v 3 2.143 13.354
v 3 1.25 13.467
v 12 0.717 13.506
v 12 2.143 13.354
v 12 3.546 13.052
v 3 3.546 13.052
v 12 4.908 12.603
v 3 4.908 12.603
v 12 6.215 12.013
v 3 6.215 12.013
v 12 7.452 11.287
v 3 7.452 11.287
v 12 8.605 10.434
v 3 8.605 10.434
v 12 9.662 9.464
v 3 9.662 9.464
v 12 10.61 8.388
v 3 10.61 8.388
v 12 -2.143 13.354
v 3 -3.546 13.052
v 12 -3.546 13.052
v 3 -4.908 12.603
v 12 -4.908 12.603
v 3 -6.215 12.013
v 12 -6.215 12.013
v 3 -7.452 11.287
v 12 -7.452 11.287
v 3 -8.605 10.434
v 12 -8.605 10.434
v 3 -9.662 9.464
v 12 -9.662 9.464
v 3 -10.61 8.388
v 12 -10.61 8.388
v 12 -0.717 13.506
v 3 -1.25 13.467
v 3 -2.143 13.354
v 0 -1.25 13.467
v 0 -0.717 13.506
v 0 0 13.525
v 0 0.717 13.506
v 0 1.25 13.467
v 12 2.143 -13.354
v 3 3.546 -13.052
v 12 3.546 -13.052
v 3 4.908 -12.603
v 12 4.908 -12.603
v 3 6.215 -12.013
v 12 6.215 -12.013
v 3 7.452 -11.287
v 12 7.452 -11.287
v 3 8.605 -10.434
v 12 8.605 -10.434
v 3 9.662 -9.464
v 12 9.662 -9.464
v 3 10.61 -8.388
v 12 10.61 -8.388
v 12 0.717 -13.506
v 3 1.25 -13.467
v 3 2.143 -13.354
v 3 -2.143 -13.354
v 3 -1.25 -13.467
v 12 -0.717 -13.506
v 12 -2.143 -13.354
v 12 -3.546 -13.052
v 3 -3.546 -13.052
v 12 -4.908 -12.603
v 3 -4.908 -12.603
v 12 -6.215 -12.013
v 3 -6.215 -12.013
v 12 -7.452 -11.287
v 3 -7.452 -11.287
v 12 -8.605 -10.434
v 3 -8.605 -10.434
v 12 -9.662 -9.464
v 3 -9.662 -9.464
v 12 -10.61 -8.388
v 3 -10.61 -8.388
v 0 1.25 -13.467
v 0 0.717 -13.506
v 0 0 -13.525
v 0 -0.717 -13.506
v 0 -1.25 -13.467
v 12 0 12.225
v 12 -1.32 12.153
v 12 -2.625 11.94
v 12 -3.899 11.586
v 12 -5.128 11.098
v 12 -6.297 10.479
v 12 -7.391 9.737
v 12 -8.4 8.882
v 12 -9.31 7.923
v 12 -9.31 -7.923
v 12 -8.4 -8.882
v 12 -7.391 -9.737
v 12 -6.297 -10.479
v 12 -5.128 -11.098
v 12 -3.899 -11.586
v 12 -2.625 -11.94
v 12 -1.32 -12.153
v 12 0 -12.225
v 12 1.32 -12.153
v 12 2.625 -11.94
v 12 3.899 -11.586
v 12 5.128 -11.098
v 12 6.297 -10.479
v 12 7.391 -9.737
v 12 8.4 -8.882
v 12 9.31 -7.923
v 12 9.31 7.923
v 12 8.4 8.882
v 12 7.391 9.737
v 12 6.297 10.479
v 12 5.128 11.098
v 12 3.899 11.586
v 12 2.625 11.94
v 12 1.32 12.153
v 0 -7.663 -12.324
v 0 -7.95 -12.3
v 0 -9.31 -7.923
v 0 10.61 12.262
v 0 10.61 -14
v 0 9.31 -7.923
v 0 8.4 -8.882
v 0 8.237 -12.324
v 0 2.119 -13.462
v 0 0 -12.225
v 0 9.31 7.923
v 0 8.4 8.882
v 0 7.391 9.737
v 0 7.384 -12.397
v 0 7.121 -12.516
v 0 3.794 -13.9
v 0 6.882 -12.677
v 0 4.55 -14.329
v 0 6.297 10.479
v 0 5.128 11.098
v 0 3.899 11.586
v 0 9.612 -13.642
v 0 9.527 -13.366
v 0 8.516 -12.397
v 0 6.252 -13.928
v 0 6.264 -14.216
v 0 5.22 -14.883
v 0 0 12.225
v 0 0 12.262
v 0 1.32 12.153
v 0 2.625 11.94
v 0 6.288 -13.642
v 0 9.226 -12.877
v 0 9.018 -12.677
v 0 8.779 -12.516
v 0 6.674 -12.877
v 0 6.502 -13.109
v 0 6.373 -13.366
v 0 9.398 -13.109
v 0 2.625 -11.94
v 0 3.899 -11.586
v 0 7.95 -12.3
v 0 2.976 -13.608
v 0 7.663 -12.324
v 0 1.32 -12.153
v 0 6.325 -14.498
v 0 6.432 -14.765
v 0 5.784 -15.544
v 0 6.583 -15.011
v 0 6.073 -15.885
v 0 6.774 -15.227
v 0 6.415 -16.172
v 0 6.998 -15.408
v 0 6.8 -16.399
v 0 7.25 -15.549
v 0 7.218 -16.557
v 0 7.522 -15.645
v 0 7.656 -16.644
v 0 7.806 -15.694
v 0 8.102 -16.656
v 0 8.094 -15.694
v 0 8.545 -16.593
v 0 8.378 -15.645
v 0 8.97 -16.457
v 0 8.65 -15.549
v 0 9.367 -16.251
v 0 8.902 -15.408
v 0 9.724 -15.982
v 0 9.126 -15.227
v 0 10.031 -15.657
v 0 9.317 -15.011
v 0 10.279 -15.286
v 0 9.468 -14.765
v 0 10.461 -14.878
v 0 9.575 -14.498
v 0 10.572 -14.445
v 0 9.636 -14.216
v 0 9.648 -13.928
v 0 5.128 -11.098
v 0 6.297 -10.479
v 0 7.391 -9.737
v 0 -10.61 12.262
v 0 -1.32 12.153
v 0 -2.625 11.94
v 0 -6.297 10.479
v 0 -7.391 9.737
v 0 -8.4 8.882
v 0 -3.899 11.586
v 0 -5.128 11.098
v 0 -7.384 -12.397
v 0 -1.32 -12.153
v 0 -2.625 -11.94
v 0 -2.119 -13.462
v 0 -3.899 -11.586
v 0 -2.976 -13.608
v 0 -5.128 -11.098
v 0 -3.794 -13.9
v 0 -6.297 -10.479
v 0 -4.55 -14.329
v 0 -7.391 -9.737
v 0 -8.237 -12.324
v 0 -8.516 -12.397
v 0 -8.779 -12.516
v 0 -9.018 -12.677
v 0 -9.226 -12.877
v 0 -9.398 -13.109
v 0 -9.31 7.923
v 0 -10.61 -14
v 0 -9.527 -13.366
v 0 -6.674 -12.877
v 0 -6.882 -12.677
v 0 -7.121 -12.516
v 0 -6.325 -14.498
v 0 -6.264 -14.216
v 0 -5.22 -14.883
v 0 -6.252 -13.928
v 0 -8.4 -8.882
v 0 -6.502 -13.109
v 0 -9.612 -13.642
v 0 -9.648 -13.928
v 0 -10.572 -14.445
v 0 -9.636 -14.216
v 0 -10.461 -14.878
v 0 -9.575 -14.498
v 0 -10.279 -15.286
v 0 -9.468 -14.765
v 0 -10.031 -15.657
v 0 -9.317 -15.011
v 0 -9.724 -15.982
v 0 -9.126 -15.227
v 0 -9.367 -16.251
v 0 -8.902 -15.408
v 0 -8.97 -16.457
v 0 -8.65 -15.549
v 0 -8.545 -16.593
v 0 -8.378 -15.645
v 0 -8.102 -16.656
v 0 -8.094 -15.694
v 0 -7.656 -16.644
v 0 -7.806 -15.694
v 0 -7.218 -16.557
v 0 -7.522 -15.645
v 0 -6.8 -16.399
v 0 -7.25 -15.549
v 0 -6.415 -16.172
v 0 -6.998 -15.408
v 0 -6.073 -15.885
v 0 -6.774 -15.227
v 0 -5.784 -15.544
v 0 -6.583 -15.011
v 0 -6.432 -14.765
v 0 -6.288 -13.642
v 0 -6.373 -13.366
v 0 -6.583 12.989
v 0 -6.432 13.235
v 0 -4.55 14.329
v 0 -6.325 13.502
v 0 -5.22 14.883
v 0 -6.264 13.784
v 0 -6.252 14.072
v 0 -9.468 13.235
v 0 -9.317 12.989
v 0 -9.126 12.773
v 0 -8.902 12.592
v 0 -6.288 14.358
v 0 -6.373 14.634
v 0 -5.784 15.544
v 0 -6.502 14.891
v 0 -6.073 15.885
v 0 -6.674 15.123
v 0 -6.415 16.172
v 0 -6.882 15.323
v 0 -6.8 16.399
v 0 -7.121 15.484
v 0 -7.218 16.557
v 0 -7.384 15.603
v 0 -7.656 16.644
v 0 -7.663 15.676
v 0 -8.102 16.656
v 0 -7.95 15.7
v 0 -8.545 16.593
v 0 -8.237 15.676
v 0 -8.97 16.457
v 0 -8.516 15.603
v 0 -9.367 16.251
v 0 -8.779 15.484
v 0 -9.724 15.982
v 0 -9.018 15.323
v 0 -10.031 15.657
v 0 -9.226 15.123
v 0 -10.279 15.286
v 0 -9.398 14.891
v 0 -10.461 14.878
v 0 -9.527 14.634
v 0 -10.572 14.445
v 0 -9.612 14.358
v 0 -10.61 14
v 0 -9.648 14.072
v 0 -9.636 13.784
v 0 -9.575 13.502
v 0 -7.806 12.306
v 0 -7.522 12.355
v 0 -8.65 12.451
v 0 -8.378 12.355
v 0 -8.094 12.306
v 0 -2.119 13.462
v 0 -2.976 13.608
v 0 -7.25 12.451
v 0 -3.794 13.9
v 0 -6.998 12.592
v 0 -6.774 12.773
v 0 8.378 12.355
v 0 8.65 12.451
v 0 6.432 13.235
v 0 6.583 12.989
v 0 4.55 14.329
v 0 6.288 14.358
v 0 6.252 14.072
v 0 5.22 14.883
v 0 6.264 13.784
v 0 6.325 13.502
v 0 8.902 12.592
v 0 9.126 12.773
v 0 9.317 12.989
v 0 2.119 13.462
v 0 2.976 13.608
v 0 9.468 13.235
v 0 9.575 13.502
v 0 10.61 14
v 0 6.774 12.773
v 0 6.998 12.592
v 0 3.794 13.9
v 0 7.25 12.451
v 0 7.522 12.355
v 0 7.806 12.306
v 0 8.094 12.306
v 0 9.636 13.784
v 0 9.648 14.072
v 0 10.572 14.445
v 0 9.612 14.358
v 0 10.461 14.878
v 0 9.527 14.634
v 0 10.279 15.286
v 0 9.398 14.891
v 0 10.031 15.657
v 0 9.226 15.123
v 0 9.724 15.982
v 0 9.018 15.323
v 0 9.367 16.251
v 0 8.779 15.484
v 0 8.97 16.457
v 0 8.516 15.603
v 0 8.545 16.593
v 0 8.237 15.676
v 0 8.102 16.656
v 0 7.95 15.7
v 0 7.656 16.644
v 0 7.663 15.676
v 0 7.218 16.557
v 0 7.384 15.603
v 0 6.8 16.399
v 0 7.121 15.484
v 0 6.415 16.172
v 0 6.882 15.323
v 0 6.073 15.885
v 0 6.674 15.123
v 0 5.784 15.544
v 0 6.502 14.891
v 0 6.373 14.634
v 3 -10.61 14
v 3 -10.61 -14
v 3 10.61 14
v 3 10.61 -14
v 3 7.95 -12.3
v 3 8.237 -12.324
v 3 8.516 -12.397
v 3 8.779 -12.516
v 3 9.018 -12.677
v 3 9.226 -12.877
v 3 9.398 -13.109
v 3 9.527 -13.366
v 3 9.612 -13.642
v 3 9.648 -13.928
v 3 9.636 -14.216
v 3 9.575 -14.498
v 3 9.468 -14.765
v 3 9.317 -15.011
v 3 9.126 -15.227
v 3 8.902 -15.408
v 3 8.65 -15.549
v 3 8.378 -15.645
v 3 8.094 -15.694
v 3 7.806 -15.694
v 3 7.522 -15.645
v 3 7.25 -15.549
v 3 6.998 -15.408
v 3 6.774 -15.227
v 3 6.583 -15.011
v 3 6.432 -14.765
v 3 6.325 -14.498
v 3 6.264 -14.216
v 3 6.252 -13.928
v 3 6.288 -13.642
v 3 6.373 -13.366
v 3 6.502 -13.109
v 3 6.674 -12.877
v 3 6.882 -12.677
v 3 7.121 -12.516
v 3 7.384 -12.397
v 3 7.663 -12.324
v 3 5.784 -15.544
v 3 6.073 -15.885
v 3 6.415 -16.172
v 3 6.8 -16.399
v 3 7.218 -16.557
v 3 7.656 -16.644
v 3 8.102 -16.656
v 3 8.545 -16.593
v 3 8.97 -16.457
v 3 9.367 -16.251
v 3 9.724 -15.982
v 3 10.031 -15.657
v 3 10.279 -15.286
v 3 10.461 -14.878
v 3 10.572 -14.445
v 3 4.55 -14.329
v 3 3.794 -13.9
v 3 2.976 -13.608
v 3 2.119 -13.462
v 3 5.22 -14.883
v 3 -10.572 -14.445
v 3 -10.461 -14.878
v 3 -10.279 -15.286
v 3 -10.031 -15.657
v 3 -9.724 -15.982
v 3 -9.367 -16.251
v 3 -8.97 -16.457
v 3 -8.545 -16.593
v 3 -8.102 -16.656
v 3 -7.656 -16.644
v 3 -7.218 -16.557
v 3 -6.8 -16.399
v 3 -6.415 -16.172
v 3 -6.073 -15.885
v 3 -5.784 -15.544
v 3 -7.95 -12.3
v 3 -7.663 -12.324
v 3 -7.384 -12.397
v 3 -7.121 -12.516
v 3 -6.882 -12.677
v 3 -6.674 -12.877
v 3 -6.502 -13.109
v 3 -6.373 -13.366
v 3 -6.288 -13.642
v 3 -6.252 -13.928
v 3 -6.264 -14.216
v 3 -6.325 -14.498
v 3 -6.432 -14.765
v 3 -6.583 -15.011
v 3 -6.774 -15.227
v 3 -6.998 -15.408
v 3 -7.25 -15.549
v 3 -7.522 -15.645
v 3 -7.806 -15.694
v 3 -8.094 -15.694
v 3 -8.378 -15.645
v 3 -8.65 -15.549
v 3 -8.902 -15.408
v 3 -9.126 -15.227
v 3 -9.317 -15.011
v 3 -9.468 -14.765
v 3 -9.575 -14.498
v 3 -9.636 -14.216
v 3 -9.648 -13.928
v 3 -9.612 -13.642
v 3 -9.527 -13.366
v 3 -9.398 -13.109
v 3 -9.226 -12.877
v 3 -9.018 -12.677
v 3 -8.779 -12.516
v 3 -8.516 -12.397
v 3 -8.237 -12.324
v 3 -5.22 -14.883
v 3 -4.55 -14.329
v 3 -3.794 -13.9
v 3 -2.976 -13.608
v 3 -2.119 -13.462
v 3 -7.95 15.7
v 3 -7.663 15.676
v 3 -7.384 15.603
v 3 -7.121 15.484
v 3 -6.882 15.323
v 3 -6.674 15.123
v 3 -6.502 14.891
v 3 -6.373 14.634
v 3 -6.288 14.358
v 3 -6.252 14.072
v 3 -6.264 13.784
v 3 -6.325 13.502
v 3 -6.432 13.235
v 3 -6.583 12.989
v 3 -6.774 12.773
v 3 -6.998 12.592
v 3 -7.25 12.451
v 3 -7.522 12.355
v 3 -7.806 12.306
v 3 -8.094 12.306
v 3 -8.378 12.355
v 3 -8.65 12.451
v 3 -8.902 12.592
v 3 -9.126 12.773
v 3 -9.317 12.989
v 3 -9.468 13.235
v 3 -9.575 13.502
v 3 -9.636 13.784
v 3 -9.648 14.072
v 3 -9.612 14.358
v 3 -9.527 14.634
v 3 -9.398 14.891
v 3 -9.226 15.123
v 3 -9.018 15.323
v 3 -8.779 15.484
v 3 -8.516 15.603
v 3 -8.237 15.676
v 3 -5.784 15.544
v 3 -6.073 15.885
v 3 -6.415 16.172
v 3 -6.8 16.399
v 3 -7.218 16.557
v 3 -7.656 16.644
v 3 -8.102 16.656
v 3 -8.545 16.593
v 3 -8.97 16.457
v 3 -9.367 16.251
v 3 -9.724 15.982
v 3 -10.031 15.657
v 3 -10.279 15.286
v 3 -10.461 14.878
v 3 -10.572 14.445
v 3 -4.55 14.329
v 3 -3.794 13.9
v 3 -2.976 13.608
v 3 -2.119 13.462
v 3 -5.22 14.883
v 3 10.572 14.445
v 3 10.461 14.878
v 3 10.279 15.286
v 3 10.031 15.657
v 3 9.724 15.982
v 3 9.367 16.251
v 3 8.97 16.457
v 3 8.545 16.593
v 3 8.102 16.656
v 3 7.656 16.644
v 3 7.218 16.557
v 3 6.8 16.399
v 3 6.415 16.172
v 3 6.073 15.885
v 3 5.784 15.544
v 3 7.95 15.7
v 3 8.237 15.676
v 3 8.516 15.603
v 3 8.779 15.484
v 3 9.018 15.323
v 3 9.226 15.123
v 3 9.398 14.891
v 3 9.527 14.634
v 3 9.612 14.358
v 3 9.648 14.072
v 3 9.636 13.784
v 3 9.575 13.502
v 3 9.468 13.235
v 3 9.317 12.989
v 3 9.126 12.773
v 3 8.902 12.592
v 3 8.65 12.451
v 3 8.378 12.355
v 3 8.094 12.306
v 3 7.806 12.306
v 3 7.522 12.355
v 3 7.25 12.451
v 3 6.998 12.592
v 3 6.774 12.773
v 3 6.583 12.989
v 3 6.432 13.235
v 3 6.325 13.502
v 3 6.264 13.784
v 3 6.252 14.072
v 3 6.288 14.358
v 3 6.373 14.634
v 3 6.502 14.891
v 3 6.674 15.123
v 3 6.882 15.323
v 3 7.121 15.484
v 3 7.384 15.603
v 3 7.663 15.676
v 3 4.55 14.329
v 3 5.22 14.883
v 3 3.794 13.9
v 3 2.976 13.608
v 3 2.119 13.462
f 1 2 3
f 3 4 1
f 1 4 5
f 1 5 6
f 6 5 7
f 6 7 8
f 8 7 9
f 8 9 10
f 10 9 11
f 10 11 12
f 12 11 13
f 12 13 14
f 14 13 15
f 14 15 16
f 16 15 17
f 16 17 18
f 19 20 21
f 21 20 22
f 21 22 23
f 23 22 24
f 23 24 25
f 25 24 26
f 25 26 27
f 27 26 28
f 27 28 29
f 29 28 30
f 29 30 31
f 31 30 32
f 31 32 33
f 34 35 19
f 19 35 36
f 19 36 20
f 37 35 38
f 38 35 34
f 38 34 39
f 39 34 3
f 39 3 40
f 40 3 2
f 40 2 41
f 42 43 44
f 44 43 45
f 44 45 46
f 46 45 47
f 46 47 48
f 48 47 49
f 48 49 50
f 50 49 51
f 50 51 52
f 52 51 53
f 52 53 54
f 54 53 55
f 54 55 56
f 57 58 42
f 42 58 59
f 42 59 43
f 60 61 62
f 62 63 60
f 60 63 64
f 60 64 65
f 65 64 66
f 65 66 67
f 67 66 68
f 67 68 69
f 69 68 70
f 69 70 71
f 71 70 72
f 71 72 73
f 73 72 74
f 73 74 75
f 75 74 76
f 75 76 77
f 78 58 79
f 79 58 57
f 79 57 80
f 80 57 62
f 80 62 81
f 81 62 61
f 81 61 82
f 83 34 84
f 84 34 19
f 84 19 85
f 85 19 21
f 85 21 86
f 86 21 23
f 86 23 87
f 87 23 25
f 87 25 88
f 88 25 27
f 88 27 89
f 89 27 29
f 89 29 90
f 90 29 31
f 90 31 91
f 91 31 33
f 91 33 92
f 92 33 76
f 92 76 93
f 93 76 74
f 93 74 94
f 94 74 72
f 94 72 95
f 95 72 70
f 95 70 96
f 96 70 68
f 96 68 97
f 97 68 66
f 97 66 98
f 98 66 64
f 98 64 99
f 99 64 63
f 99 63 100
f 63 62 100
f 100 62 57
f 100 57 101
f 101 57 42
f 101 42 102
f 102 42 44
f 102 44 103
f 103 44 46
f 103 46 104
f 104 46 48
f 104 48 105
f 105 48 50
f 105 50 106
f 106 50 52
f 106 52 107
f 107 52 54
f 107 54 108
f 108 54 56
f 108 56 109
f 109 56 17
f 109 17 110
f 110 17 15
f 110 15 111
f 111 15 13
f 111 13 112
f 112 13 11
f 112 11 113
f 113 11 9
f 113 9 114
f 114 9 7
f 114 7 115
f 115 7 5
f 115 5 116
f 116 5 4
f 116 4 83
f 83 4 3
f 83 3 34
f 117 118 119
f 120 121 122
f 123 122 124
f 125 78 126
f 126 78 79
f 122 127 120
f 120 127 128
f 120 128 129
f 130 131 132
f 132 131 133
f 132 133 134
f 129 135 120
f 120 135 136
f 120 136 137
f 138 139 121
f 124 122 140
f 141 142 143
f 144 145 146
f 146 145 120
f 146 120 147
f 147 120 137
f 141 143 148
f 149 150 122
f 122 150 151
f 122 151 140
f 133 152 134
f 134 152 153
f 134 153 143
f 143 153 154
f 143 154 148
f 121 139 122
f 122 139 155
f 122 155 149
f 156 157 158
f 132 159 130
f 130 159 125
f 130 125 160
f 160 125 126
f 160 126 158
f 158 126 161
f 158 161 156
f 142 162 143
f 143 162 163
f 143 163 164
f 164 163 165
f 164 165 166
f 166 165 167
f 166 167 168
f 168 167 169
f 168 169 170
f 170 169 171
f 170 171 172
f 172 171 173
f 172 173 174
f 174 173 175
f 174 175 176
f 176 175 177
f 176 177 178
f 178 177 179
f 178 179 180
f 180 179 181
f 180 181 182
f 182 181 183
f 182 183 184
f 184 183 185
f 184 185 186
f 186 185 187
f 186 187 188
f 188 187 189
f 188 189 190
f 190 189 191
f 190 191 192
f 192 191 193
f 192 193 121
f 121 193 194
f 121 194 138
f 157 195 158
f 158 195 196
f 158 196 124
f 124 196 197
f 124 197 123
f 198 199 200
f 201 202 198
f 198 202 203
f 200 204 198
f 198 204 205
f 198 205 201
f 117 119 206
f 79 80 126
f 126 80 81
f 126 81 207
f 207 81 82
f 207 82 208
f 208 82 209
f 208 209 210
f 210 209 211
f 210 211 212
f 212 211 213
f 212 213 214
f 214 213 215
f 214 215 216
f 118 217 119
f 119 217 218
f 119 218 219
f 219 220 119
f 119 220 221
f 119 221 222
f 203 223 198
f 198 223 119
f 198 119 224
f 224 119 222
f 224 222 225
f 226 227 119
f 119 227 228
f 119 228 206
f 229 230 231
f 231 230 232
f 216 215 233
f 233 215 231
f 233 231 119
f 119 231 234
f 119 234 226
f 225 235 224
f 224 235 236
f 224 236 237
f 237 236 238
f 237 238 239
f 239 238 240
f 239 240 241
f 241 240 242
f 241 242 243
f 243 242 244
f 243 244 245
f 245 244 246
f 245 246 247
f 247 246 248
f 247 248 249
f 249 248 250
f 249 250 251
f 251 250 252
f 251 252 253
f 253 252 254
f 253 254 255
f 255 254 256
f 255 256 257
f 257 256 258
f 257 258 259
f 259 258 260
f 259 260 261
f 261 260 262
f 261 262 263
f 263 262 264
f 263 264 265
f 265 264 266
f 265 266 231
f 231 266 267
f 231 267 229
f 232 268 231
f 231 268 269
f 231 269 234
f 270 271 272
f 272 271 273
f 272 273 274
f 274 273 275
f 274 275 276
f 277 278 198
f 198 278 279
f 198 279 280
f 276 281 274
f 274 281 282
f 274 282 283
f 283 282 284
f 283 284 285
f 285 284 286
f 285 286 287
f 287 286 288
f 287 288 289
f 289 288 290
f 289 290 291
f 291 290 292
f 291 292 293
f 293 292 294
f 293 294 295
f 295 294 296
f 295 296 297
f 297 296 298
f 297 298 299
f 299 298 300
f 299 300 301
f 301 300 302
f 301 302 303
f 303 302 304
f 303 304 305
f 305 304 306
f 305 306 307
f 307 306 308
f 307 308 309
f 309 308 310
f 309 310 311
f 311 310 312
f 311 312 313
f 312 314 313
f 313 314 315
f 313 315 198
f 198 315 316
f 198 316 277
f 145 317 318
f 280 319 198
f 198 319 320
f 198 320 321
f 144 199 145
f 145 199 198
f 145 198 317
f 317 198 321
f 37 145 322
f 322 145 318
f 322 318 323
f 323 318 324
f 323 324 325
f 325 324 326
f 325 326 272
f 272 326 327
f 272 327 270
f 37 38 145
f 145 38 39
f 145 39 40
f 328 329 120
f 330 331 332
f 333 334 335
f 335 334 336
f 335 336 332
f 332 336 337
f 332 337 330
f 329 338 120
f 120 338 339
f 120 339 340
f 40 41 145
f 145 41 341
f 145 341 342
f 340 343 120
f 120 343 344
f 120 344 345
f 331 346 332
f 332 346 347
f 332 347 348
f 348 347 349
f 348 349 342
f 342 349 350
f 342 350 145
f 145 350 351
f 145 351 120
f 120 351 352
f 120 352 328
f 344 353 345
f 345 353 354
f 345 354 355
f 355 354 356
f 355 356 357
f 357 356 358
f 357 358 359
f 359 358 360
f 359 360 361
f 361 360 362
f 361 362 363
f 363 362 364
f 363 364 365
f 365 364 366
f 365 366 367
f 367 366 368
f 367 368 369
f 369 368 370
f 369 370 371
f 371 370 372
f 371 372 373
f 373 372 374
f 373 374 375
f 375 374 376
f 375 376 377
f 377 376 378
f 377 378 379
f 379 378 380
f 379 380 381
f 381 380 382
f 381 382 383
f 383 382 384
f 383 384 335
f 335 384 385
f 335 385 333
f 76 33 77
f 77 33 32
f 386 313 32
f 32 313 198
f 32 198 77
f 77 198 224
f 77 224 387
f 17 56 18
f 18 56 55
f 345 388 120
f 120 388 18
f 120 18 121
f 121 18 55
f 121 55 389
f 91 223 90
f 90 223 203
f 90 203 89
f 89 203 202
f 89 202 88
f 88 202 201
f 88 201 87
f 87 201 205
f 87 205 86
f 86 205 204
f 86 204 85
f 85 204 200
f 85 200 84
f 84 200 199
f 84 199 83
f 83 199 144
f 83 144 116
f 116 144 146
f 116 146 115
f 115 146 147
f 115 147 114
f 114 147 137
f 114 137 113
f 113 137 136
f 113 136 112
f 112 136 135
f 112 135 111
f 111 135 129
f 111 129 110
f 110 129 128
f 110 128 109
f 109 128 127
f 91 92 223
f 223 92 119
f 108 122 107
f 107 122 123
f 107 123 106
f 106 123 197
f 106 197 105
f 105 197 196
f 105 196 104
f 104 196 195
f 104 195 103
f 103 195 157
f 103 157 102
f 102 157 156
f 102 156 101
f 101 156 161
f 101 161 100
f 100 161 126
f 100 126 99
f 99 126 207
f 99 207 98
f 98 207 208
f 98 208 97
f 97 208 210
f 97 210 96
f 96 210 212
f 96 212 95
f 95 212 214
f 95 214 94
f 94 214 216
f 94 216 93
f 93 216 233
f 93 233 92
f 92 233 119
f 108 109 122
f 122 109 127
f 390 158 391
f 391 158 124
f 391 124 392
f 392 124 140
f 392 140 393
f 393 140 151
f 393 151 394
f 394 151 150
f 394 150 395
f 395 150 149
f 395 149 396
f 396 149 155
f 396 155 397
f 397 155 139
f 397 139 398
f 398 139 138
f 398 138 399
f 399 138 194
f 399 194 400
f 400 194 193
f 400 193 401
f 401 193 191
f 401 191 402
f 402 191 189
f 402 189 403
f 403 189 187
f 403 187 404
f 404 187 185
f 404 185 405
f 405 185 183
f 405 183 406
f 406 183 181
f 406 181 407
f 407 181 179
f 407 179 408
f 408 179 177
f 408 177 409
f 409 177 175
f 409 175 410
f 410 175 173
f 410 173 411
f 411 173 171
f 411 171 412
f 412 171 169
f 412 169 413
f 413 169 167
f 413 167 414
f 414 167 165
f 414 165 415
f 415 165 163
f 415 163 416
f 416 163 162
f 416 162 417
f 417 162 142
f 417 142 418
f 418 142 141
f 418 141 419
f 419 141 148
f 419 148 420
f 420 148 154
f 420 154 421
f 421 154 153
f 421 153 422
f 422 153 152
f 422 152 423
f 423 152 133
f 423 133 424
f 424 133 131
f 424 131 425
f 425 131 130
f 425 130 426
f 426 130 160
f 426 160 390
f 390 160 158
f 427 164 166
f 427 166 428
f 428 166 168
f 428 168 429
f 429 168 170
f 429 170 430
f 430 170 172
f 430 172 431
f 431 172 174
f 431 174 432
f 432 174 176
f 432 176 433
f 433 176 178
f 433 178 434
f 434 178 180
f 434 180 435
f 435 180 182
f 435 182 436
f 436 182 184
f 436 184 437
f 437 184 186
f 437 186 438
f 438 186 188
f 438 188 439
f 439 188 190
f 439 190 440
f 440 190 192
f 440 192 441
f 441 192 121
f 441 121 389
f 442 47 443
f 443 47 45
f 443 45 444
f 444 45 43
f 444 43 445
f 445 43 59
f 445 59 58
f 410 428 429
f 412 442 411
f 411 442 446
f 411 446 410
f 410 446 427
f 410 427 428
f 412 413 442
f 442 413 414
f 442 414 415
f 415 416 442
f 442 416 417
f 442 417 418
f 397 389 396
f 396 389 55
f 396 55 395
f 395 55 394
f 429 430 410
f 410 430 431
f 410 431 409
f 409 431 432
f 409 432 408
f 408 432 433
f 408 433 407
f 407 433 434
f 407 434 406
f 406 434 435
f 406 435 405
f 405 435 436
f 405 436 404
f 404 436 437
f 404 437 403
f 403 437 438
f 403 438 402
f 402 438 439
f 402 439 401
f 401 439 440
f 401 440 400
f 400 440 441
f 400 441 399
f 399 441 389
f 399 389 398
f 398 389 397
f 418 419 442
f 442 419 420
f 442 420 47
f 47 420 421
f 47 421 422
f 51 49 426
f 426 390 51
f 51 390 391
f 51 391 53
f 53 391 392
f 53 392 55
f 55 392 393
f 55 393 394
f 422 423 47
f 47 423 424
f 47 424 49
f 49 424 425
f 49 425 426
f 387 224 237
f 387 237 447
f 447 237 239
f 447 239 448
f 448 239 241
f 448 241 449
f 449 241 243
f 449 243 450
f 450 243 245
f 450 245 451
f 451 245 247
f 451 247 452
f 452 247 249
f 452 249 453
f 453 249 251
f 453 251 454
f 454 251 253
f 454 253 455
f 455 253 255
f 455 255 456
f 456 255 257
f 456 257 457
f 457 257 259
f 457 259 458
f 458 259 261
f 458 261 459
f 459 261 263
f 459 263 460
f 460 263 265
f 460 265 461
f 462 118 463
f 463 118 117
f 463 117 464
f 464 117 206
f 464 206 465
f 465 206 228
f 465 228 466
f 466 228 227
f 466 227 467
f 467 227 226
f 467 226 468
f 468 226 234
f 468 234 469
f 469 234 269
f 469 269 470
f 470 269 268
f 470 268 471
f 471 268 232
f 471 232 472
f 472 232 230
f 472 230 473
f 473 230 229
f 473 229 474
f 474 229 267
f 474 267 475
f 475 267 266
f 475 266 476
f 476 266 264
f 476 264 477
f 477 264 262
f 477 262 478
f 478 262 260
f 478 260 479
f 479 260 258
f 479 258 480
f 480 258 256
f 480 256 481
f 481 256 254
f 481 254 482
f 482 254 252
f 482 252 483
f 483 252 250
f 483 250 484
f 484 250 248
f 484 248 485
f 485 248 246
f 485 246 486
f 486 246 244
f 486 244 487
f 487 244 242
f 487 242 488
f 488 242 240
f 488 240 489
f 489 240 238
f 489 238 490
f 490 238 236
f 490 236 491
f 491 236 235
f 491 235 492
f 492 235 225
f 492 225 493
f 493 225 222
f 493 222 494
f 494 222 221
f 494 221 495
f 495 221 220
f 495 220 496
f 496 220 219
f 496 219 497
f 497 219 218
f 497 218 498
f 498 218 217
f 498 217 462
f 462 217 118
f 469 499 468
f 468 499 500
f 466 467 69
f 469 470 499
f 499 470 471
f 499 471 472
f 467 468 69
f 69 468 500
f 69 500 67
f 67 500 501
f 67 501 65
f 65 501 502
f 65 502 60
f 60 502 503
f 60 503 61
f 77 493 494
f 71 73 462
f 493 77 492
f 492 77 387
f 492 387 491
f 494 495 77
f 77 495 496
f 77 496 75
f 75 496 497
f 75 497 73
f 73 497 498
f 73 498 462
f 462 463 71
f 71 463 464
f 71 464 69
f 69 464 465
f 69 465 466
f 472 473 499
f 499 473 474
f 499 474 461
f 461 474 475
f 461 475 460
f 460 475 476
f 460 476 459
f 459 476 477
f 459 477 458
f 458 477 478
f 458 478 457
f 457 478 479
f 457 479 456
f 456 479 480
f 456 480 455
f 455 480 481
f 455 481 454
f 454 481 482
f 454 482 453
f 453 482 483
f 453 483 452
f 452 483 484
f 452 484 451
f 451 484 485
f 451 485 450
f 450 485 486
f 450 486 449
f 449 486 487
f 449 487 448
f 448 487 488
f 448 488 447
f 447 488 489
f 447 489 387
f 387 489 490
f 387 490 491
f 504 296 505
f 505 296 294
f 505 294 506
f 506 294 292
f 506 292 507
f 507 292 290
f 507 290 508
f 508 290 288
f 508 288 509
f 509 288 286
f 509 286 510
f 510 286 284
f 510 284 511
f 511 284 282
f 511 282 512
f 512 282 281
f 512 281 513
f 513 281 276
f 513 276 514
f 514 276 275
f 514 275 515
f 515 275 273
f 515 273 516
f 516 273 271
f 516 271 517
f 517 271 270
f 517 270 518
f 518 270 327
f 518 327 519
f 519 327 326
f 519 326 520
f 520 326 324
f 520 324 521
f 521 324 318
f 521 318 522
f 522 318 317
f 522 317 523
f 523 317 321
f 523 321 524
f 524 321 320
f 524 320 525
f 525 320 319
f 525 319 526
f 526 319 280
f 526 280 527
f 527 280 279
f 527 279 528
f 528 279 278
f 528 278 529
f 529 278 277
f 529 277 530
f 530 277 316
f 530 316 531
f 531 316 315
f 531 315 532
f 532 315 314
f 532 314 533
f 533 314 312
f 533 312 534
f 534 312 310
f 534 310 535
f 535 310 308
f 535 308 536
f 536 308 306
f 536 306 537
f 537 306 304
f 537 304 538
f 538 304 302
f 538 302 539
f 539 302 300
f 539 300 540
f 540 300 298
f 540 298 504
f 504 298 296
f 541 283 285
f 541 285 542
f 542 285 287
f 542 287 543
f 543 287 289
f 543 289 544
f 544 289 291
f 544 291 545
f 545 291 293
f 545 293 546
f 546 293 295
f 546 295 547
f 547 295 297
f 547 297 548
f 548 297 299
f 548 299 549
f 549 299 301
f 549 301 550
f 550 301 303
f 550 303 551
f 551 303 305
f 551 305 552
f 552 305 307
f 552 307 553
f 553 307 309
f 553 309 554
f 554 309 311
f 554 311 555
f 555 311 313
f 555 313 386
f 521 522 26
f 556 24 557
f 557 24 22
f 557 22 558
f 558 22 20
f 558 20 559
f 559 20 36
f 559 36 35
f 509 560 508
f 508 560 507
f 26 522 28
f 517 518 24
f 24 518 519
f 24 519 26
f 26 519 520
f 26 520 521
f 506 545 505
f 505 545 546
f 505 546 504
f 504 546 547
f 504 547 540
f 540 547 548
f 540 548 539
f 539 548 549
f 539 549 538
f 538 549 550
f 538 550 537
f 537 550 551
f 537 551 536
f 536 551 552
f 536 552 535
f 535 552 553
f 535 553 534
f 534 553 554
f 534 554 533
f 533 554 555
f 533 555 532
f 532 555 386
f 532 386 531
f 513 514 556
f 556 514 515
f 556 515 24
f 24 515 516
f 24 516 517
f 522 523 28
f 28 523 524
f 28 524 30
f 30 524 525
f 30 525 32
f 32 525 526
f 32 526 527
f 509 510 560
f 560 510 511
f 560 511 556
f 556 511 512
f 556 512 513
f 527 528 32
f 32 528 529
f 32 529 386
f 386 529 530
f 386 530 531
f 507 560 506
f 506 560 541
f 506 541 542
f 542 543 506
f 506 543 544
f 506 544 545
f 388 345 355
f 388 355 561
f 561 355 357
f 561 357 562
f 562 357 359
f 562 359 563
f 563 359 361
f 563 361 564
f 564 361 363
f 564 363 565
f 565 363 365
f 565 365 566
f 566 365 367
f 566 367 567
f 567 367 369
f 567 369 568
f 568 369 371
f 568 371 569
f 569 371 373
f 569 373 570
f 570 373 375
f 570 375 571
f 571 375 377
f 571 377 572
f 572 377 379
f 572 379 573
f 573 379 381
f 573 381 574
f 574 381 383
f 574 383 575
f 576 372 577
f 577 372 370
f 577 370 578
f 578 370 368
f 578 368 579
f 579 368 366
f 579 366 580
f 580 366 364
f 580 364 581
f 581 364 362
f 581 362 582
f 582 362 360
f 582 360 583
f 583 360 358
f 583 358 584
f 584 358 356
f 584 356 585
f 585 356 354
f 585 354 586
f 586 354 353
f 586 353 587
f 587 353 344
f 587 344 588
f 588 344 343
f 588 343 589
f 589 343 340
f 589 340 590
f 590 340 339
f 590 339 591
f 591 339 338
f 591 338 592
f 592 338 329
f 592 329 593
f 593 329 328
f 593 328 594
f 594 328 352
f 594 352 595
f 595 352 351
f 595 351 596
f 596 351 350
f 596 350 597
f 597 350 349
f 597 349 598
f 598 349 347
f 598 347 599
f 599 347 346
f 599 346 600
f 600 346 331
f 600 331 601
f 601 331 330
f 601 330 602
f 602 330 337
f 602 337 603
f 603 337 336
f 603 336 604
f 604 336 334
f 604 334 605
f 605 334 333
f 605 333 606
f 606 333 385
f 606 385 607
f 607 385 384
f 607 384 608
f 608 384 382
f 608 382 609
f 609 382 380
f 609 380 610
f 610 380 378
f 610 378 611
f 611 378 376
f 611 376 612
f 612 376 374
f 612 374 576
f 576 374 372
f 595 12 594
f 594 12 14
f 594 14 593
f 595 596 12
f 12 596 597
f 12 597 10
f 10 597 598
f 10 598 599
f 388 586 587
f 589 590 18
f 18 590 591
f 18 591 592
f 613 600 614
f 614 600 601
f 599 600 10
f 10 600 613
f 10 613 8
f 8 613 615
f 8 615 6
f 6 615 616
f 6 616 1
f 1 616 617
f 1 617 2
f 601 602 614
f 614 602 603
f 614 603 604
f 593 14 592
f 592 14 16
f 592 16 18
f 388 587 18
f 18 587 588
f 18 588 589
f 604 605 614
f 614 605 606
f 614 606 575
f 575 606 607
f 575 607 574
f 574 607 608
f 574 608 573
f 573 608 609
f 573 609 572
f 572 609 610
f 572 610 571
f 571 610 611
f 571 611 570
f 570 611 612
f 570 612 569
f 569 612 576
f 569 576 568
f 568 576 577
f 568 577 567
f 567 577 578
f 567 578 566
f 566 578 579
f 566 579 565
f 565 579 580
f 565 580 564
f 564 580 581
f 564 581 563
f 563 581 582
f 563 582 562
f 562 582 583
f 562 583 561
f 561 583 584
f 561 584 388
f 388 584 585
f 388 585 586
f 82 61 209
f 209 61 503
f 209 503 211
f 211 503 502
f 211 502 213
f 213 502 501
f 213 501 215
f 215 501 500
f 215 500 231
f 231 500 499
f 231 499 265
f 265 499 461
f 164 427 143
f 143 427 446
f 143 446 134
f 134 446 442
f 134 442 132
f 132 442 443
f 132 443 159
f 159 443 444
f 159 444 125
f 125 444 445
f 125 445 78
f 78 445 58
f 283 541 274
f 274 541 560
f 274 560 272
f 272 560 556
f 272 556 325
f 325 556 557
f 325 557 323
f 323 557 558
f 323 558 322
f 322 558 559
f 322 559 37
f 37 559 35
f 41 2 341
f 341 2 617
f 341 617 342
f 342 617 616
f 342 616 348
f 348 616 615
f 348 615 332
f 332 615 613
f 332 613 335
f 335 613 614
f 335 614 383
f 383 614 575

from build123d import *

# Parameters (mm, degrees)
MOTOR_HOLDER_DEPTH  = 12
SKETCH2_R           = 1.7
BOSS_EXTRUDE1_DEPTH = 3
FILLET1_R           = 5


with BuildPart() as part:
    # Sketch1 → Motor Holder (new body)
    with BuildSketch(Plane(origin=(0, 0, 0), x_dir=(0, 0, -1), z_dir=(1, 0, 0))):
        with BuildLine():
            Line((-8.387700817, 10.61), (8.387700817, 10.61))
            ThreePointArc((8.387700817, 10.61), (13.525, 0), (8.387700817, -10.61))
            Line((8.387700817, -10.61), (-8.387700817, -10.61))
            ThreePointArc((-8.387700817, -10.61), (-13.525, 0), (-8.387700817, 10.61))
        make_face()
        with BuildLine():
            Line((-7.923037612, 9.31), (7.923037612, 9.31))
            ThreePointArc((7.923037612, 9.31), (12.225, 0), (7.923037612, -9.31))
            Line((7.923037612, -9.31), (-7.923037612, -9.31))
            ThreePointArc((-7.923037612, -9.31), (-12.225, 0), (-7.923037612, 9.31))
        make_face(mode=Mode.SUBTRACT)
    extrude(amount=MOTOR_HOLDER_DEPTH)

    # Sketch2 → Boss-Extrude1 (add)
    # profile 1 of 4: a face of its own
    with BuildSketch(Plane.ZY):
        with BuildLine():
            Line((-14.913279506, 5.451696467), (-12.702840333, 4.643648617))
            ThreePointArc((-12.702840333, 4.643648617), (-10.959108938, 7.926131231), (-8.387700817, 10.61))
            Line((-8.387700817, 10.61), (-14, 10.61))
            ThreePointArc((-14, 10.61), (-16.619263961, 8.413741632), (-14.913279506, 5.451696467))
        make_face()
        with Locations((-14, 7.95)):
            Circle(SKETCH2_R, mode=Mode.SUBTRACT)
    # profile 2 of 4: a face of its own
    with BuildSketch(Plane.ZY):
        with BuildLine():
            Line((-14, -10.61), (-8.387700817, -10.61))
            ThreePointArc((-8.387700817, -10.61), (-10.959108938, -7.926131231), (-12.702840333, -4.643648617))
            Line((-12.702840333, -4.643648617), (-14.913279506, -5.451696467))
            ThreePointArc((-14.913279506, -5.451696467), (-16.619263961, -8.413741632), (-14, -10.61))
        make_face()
        with Locations((-14, -7.95)):
            Circle(SKETCH2_R, mode=Mode.SUBTRACT)
    # profile 3 of 4: a face of its own
    with BuildSketch(Plane.ZY):
        with BuildLine():
            Line((14.913279506, -5.451696467), (12.702840333, -4.643648617))
            ThreePointArc((12.702840333, -4.643648617), (10.959108938, -7.926131231), (8.387700817, -10.61))
            Line((8.387700817, -10.61), (14, -10.61))
            ThreePointArc((14, -10.61), (16.619263961, -8.413741632), (14.913279506, -5.451696467))
        make_face()
        with Locations((14, -7.95)):
            Circle(SKETCH2_R, mode=Mode.SUBTRACT)
    # profile 4 of 4: a face of its own
    with BuildSketch(Plane.ZY):
        with BuildLine():
            Line((14, 10.61), (8.387700817, 10.61))
            ThreePointArc((8.387700817, 10.61), (10.959108938, 7.926131231), (12.702840333, 4.643648617))
            Line((12.702840333, 4.643648617), (14.913279506, 5.451696467))
            ThreePointArc((14.913279506, 5.451696467), (16.619263961, 8.413741632), (14, 10.61))
        make_face()
        with Locations((14, 7.95)):
            Circle(SKETCH2_R, mode=Mode.SUBTRACT)
    extrude(amount=-BOSS_EXTRUDE1_DEPTH)

    # Fillet1
    # the kernel refuses this fillet: 5 mm, written as the material it adds along each edge
    with BuildSketch(Plane(origin=(0, -4.643648617, -12.702840333), x_dir=(0, -0.37246154251752206, -0.9280476277354887), z_dir=(1, 0, 0)), Plane(origin=(0, 4.643648617, 12.702840333), x_dir=(0, 0.3724615425175231, 0.9280476277354882), z_dir=(1, 0, 0))) as fillet1_piece_1:
        with BuildLine():
            CenterArc((4.237774009, 4.85960426), FILLET1_R, 196.564565372, 59.825655305)
            Line((-0.554721368, 3.434126074), (-1.033970906, 3.291578255))
            ThreePointArc((-1.033970906, 3.291578255), (-0.660094703, 1.655239232), (-0.499756797, -0.015593065))
            Line((-0.499756797, -0.015593065), (0.015593065, -0.499756797))
            ThreePointArc((0.015593065, -0.499756797), (2.367952645, -0.426360103), (2.94357998, -0.485960426))
            Line((2.94357998, -0.485960426), (3.061233982, 0))
        make_face()
    extrude(amount=3)
    with BuildSketch(Plane(origin=(0, 4.643648617, -12.702840333), x_dir=(0, 0.3724615425175213, -0.9280476277354889), z_dir=(1, 0, 0)), Plane(origin=(0, -4.643648617, 12.702840333), x_dir=(0, -0.37246154251752195, 0.9280476277354888), z_dir=(1, 0, 0))) as fillet1_piece_2:
        with BuildLine():
            CenterArc((4.237774009, -4.85960426), FILLET1_R, 103.609779323, 59.825655305)
            Line((-0.554721368, -3.434126074), (-1.033970906, -3.291578255))
            ThreePointArc((-1.033970906, -3.291578255), (-0.660094703, -1.655239232), (-0.499756797, 0.015593065))
            Line((-0.499756797, 0.015593065), (0.015593065, 0.499756797))
            ThreePointArc((0.015593065, 0.499756797), (2.367952645, 0.426360103), (2.94357998, 0.485960426))
            Line((2.94357998, 0.485960426), (3.061233982, 0))
        make_face()
    extrude(amount=3)


solid = part.part
